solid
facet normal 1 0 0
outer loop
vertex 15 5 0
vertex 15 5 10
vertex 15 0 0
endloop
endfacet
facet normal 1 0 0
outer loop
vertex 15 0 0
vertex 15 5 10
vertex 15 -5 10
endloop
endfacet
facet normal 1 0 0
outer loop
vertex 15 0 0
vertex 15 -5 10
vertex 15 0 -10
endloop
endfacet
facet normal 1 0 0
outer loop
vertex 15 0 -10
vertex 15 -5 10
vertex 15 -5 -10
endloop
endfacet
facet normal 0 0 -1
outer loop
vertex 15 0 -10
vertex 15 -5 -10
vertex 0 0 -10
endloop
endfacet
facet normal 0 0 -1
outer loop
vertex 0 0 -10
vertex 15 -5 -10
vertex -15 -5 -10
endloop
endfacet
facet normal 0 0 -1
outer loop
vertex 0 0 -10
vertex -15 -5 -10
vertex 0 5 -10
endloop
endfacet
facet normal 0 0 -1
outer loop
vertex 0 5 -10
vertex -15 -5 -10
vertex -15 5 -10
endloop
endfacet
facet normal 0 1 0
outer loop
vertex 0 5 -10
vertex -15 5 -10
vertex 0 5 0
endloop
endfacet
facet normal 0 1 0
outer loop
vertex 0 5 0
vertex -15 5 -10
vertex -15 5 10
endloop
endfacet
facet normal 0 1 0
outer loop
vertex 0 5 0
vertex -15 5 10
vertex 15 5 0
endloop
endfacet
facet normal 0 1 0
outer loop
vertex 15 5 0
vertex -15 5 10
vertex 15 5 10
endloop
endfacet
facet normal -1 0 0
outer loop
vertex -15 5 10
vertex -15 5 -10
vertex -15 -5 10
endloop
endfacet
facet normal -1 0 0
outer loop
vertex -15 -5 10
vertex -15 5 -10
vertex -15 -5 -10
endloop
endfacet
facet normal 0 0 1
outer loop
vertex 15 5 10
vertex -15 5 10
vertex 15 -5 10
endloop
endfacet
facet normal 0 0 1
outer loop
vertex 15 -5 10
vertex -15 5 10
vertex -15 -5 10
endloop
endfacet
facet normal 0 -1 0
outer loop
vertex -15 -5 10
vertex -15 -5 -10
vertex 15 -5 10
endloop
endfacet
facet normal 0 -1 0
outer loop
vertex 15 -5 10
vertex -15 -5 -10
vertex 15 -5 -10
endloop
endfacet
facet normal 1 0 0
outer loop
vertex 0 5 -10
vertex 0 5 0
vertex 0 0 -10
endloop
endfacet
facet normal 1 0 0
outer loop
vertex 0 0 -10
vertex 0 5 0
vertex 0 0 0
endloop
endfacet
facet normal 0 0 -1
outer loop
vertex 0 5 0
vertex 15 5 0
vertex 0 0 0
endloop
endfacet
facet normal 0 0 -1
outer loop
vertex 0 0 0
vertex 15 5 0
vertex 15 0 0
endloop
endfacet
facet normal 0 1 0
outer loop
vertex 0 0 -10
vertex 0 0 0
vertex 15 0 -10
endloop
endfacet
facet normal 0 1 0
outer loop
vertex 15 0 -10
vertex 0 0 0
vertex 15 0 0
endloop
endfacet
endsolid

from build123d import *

# Parameters (mm, degrees)
SKETCH_1_W          = 30
SKETCH_1_H          = 20
EXTRUDE_1_DEPTH     = 5
SKETCH_2_W          = 15
SKETCH_2_H          = 10
CUT_EXTRUDE_1_DEPTH = 19.708286934


with BuildPart() as part:
    # 草图1 → 凸台-拉伸1 (new, symmetric)
    with BuildSketch(Plane(origin=(0, 0, 0), x_dir=(1, 0, 0), z_dir=(0, 1, 0))):
        Rectangle(SKETCH_1_W, SKETCH_1_H)
    extrude(amount=EXTRUDE_1_DEPTH, both=True)

    # 草图2 → 切除-拉伸1 (cut, through all)
    with BuildSketch(Plane(origin=(0, 0, 0), x_dir=(1, 0, 0), z_dir=(0, 1, 0))):
        with Locations((7.5, 5)):
            Rectangle(SKETCH_2_W, SKETCH_2_H)
    extrude(amount=CUT_EXTRUDE_1_DEPTH, mode=Mode.SUBTRACT)


solid = part.part
